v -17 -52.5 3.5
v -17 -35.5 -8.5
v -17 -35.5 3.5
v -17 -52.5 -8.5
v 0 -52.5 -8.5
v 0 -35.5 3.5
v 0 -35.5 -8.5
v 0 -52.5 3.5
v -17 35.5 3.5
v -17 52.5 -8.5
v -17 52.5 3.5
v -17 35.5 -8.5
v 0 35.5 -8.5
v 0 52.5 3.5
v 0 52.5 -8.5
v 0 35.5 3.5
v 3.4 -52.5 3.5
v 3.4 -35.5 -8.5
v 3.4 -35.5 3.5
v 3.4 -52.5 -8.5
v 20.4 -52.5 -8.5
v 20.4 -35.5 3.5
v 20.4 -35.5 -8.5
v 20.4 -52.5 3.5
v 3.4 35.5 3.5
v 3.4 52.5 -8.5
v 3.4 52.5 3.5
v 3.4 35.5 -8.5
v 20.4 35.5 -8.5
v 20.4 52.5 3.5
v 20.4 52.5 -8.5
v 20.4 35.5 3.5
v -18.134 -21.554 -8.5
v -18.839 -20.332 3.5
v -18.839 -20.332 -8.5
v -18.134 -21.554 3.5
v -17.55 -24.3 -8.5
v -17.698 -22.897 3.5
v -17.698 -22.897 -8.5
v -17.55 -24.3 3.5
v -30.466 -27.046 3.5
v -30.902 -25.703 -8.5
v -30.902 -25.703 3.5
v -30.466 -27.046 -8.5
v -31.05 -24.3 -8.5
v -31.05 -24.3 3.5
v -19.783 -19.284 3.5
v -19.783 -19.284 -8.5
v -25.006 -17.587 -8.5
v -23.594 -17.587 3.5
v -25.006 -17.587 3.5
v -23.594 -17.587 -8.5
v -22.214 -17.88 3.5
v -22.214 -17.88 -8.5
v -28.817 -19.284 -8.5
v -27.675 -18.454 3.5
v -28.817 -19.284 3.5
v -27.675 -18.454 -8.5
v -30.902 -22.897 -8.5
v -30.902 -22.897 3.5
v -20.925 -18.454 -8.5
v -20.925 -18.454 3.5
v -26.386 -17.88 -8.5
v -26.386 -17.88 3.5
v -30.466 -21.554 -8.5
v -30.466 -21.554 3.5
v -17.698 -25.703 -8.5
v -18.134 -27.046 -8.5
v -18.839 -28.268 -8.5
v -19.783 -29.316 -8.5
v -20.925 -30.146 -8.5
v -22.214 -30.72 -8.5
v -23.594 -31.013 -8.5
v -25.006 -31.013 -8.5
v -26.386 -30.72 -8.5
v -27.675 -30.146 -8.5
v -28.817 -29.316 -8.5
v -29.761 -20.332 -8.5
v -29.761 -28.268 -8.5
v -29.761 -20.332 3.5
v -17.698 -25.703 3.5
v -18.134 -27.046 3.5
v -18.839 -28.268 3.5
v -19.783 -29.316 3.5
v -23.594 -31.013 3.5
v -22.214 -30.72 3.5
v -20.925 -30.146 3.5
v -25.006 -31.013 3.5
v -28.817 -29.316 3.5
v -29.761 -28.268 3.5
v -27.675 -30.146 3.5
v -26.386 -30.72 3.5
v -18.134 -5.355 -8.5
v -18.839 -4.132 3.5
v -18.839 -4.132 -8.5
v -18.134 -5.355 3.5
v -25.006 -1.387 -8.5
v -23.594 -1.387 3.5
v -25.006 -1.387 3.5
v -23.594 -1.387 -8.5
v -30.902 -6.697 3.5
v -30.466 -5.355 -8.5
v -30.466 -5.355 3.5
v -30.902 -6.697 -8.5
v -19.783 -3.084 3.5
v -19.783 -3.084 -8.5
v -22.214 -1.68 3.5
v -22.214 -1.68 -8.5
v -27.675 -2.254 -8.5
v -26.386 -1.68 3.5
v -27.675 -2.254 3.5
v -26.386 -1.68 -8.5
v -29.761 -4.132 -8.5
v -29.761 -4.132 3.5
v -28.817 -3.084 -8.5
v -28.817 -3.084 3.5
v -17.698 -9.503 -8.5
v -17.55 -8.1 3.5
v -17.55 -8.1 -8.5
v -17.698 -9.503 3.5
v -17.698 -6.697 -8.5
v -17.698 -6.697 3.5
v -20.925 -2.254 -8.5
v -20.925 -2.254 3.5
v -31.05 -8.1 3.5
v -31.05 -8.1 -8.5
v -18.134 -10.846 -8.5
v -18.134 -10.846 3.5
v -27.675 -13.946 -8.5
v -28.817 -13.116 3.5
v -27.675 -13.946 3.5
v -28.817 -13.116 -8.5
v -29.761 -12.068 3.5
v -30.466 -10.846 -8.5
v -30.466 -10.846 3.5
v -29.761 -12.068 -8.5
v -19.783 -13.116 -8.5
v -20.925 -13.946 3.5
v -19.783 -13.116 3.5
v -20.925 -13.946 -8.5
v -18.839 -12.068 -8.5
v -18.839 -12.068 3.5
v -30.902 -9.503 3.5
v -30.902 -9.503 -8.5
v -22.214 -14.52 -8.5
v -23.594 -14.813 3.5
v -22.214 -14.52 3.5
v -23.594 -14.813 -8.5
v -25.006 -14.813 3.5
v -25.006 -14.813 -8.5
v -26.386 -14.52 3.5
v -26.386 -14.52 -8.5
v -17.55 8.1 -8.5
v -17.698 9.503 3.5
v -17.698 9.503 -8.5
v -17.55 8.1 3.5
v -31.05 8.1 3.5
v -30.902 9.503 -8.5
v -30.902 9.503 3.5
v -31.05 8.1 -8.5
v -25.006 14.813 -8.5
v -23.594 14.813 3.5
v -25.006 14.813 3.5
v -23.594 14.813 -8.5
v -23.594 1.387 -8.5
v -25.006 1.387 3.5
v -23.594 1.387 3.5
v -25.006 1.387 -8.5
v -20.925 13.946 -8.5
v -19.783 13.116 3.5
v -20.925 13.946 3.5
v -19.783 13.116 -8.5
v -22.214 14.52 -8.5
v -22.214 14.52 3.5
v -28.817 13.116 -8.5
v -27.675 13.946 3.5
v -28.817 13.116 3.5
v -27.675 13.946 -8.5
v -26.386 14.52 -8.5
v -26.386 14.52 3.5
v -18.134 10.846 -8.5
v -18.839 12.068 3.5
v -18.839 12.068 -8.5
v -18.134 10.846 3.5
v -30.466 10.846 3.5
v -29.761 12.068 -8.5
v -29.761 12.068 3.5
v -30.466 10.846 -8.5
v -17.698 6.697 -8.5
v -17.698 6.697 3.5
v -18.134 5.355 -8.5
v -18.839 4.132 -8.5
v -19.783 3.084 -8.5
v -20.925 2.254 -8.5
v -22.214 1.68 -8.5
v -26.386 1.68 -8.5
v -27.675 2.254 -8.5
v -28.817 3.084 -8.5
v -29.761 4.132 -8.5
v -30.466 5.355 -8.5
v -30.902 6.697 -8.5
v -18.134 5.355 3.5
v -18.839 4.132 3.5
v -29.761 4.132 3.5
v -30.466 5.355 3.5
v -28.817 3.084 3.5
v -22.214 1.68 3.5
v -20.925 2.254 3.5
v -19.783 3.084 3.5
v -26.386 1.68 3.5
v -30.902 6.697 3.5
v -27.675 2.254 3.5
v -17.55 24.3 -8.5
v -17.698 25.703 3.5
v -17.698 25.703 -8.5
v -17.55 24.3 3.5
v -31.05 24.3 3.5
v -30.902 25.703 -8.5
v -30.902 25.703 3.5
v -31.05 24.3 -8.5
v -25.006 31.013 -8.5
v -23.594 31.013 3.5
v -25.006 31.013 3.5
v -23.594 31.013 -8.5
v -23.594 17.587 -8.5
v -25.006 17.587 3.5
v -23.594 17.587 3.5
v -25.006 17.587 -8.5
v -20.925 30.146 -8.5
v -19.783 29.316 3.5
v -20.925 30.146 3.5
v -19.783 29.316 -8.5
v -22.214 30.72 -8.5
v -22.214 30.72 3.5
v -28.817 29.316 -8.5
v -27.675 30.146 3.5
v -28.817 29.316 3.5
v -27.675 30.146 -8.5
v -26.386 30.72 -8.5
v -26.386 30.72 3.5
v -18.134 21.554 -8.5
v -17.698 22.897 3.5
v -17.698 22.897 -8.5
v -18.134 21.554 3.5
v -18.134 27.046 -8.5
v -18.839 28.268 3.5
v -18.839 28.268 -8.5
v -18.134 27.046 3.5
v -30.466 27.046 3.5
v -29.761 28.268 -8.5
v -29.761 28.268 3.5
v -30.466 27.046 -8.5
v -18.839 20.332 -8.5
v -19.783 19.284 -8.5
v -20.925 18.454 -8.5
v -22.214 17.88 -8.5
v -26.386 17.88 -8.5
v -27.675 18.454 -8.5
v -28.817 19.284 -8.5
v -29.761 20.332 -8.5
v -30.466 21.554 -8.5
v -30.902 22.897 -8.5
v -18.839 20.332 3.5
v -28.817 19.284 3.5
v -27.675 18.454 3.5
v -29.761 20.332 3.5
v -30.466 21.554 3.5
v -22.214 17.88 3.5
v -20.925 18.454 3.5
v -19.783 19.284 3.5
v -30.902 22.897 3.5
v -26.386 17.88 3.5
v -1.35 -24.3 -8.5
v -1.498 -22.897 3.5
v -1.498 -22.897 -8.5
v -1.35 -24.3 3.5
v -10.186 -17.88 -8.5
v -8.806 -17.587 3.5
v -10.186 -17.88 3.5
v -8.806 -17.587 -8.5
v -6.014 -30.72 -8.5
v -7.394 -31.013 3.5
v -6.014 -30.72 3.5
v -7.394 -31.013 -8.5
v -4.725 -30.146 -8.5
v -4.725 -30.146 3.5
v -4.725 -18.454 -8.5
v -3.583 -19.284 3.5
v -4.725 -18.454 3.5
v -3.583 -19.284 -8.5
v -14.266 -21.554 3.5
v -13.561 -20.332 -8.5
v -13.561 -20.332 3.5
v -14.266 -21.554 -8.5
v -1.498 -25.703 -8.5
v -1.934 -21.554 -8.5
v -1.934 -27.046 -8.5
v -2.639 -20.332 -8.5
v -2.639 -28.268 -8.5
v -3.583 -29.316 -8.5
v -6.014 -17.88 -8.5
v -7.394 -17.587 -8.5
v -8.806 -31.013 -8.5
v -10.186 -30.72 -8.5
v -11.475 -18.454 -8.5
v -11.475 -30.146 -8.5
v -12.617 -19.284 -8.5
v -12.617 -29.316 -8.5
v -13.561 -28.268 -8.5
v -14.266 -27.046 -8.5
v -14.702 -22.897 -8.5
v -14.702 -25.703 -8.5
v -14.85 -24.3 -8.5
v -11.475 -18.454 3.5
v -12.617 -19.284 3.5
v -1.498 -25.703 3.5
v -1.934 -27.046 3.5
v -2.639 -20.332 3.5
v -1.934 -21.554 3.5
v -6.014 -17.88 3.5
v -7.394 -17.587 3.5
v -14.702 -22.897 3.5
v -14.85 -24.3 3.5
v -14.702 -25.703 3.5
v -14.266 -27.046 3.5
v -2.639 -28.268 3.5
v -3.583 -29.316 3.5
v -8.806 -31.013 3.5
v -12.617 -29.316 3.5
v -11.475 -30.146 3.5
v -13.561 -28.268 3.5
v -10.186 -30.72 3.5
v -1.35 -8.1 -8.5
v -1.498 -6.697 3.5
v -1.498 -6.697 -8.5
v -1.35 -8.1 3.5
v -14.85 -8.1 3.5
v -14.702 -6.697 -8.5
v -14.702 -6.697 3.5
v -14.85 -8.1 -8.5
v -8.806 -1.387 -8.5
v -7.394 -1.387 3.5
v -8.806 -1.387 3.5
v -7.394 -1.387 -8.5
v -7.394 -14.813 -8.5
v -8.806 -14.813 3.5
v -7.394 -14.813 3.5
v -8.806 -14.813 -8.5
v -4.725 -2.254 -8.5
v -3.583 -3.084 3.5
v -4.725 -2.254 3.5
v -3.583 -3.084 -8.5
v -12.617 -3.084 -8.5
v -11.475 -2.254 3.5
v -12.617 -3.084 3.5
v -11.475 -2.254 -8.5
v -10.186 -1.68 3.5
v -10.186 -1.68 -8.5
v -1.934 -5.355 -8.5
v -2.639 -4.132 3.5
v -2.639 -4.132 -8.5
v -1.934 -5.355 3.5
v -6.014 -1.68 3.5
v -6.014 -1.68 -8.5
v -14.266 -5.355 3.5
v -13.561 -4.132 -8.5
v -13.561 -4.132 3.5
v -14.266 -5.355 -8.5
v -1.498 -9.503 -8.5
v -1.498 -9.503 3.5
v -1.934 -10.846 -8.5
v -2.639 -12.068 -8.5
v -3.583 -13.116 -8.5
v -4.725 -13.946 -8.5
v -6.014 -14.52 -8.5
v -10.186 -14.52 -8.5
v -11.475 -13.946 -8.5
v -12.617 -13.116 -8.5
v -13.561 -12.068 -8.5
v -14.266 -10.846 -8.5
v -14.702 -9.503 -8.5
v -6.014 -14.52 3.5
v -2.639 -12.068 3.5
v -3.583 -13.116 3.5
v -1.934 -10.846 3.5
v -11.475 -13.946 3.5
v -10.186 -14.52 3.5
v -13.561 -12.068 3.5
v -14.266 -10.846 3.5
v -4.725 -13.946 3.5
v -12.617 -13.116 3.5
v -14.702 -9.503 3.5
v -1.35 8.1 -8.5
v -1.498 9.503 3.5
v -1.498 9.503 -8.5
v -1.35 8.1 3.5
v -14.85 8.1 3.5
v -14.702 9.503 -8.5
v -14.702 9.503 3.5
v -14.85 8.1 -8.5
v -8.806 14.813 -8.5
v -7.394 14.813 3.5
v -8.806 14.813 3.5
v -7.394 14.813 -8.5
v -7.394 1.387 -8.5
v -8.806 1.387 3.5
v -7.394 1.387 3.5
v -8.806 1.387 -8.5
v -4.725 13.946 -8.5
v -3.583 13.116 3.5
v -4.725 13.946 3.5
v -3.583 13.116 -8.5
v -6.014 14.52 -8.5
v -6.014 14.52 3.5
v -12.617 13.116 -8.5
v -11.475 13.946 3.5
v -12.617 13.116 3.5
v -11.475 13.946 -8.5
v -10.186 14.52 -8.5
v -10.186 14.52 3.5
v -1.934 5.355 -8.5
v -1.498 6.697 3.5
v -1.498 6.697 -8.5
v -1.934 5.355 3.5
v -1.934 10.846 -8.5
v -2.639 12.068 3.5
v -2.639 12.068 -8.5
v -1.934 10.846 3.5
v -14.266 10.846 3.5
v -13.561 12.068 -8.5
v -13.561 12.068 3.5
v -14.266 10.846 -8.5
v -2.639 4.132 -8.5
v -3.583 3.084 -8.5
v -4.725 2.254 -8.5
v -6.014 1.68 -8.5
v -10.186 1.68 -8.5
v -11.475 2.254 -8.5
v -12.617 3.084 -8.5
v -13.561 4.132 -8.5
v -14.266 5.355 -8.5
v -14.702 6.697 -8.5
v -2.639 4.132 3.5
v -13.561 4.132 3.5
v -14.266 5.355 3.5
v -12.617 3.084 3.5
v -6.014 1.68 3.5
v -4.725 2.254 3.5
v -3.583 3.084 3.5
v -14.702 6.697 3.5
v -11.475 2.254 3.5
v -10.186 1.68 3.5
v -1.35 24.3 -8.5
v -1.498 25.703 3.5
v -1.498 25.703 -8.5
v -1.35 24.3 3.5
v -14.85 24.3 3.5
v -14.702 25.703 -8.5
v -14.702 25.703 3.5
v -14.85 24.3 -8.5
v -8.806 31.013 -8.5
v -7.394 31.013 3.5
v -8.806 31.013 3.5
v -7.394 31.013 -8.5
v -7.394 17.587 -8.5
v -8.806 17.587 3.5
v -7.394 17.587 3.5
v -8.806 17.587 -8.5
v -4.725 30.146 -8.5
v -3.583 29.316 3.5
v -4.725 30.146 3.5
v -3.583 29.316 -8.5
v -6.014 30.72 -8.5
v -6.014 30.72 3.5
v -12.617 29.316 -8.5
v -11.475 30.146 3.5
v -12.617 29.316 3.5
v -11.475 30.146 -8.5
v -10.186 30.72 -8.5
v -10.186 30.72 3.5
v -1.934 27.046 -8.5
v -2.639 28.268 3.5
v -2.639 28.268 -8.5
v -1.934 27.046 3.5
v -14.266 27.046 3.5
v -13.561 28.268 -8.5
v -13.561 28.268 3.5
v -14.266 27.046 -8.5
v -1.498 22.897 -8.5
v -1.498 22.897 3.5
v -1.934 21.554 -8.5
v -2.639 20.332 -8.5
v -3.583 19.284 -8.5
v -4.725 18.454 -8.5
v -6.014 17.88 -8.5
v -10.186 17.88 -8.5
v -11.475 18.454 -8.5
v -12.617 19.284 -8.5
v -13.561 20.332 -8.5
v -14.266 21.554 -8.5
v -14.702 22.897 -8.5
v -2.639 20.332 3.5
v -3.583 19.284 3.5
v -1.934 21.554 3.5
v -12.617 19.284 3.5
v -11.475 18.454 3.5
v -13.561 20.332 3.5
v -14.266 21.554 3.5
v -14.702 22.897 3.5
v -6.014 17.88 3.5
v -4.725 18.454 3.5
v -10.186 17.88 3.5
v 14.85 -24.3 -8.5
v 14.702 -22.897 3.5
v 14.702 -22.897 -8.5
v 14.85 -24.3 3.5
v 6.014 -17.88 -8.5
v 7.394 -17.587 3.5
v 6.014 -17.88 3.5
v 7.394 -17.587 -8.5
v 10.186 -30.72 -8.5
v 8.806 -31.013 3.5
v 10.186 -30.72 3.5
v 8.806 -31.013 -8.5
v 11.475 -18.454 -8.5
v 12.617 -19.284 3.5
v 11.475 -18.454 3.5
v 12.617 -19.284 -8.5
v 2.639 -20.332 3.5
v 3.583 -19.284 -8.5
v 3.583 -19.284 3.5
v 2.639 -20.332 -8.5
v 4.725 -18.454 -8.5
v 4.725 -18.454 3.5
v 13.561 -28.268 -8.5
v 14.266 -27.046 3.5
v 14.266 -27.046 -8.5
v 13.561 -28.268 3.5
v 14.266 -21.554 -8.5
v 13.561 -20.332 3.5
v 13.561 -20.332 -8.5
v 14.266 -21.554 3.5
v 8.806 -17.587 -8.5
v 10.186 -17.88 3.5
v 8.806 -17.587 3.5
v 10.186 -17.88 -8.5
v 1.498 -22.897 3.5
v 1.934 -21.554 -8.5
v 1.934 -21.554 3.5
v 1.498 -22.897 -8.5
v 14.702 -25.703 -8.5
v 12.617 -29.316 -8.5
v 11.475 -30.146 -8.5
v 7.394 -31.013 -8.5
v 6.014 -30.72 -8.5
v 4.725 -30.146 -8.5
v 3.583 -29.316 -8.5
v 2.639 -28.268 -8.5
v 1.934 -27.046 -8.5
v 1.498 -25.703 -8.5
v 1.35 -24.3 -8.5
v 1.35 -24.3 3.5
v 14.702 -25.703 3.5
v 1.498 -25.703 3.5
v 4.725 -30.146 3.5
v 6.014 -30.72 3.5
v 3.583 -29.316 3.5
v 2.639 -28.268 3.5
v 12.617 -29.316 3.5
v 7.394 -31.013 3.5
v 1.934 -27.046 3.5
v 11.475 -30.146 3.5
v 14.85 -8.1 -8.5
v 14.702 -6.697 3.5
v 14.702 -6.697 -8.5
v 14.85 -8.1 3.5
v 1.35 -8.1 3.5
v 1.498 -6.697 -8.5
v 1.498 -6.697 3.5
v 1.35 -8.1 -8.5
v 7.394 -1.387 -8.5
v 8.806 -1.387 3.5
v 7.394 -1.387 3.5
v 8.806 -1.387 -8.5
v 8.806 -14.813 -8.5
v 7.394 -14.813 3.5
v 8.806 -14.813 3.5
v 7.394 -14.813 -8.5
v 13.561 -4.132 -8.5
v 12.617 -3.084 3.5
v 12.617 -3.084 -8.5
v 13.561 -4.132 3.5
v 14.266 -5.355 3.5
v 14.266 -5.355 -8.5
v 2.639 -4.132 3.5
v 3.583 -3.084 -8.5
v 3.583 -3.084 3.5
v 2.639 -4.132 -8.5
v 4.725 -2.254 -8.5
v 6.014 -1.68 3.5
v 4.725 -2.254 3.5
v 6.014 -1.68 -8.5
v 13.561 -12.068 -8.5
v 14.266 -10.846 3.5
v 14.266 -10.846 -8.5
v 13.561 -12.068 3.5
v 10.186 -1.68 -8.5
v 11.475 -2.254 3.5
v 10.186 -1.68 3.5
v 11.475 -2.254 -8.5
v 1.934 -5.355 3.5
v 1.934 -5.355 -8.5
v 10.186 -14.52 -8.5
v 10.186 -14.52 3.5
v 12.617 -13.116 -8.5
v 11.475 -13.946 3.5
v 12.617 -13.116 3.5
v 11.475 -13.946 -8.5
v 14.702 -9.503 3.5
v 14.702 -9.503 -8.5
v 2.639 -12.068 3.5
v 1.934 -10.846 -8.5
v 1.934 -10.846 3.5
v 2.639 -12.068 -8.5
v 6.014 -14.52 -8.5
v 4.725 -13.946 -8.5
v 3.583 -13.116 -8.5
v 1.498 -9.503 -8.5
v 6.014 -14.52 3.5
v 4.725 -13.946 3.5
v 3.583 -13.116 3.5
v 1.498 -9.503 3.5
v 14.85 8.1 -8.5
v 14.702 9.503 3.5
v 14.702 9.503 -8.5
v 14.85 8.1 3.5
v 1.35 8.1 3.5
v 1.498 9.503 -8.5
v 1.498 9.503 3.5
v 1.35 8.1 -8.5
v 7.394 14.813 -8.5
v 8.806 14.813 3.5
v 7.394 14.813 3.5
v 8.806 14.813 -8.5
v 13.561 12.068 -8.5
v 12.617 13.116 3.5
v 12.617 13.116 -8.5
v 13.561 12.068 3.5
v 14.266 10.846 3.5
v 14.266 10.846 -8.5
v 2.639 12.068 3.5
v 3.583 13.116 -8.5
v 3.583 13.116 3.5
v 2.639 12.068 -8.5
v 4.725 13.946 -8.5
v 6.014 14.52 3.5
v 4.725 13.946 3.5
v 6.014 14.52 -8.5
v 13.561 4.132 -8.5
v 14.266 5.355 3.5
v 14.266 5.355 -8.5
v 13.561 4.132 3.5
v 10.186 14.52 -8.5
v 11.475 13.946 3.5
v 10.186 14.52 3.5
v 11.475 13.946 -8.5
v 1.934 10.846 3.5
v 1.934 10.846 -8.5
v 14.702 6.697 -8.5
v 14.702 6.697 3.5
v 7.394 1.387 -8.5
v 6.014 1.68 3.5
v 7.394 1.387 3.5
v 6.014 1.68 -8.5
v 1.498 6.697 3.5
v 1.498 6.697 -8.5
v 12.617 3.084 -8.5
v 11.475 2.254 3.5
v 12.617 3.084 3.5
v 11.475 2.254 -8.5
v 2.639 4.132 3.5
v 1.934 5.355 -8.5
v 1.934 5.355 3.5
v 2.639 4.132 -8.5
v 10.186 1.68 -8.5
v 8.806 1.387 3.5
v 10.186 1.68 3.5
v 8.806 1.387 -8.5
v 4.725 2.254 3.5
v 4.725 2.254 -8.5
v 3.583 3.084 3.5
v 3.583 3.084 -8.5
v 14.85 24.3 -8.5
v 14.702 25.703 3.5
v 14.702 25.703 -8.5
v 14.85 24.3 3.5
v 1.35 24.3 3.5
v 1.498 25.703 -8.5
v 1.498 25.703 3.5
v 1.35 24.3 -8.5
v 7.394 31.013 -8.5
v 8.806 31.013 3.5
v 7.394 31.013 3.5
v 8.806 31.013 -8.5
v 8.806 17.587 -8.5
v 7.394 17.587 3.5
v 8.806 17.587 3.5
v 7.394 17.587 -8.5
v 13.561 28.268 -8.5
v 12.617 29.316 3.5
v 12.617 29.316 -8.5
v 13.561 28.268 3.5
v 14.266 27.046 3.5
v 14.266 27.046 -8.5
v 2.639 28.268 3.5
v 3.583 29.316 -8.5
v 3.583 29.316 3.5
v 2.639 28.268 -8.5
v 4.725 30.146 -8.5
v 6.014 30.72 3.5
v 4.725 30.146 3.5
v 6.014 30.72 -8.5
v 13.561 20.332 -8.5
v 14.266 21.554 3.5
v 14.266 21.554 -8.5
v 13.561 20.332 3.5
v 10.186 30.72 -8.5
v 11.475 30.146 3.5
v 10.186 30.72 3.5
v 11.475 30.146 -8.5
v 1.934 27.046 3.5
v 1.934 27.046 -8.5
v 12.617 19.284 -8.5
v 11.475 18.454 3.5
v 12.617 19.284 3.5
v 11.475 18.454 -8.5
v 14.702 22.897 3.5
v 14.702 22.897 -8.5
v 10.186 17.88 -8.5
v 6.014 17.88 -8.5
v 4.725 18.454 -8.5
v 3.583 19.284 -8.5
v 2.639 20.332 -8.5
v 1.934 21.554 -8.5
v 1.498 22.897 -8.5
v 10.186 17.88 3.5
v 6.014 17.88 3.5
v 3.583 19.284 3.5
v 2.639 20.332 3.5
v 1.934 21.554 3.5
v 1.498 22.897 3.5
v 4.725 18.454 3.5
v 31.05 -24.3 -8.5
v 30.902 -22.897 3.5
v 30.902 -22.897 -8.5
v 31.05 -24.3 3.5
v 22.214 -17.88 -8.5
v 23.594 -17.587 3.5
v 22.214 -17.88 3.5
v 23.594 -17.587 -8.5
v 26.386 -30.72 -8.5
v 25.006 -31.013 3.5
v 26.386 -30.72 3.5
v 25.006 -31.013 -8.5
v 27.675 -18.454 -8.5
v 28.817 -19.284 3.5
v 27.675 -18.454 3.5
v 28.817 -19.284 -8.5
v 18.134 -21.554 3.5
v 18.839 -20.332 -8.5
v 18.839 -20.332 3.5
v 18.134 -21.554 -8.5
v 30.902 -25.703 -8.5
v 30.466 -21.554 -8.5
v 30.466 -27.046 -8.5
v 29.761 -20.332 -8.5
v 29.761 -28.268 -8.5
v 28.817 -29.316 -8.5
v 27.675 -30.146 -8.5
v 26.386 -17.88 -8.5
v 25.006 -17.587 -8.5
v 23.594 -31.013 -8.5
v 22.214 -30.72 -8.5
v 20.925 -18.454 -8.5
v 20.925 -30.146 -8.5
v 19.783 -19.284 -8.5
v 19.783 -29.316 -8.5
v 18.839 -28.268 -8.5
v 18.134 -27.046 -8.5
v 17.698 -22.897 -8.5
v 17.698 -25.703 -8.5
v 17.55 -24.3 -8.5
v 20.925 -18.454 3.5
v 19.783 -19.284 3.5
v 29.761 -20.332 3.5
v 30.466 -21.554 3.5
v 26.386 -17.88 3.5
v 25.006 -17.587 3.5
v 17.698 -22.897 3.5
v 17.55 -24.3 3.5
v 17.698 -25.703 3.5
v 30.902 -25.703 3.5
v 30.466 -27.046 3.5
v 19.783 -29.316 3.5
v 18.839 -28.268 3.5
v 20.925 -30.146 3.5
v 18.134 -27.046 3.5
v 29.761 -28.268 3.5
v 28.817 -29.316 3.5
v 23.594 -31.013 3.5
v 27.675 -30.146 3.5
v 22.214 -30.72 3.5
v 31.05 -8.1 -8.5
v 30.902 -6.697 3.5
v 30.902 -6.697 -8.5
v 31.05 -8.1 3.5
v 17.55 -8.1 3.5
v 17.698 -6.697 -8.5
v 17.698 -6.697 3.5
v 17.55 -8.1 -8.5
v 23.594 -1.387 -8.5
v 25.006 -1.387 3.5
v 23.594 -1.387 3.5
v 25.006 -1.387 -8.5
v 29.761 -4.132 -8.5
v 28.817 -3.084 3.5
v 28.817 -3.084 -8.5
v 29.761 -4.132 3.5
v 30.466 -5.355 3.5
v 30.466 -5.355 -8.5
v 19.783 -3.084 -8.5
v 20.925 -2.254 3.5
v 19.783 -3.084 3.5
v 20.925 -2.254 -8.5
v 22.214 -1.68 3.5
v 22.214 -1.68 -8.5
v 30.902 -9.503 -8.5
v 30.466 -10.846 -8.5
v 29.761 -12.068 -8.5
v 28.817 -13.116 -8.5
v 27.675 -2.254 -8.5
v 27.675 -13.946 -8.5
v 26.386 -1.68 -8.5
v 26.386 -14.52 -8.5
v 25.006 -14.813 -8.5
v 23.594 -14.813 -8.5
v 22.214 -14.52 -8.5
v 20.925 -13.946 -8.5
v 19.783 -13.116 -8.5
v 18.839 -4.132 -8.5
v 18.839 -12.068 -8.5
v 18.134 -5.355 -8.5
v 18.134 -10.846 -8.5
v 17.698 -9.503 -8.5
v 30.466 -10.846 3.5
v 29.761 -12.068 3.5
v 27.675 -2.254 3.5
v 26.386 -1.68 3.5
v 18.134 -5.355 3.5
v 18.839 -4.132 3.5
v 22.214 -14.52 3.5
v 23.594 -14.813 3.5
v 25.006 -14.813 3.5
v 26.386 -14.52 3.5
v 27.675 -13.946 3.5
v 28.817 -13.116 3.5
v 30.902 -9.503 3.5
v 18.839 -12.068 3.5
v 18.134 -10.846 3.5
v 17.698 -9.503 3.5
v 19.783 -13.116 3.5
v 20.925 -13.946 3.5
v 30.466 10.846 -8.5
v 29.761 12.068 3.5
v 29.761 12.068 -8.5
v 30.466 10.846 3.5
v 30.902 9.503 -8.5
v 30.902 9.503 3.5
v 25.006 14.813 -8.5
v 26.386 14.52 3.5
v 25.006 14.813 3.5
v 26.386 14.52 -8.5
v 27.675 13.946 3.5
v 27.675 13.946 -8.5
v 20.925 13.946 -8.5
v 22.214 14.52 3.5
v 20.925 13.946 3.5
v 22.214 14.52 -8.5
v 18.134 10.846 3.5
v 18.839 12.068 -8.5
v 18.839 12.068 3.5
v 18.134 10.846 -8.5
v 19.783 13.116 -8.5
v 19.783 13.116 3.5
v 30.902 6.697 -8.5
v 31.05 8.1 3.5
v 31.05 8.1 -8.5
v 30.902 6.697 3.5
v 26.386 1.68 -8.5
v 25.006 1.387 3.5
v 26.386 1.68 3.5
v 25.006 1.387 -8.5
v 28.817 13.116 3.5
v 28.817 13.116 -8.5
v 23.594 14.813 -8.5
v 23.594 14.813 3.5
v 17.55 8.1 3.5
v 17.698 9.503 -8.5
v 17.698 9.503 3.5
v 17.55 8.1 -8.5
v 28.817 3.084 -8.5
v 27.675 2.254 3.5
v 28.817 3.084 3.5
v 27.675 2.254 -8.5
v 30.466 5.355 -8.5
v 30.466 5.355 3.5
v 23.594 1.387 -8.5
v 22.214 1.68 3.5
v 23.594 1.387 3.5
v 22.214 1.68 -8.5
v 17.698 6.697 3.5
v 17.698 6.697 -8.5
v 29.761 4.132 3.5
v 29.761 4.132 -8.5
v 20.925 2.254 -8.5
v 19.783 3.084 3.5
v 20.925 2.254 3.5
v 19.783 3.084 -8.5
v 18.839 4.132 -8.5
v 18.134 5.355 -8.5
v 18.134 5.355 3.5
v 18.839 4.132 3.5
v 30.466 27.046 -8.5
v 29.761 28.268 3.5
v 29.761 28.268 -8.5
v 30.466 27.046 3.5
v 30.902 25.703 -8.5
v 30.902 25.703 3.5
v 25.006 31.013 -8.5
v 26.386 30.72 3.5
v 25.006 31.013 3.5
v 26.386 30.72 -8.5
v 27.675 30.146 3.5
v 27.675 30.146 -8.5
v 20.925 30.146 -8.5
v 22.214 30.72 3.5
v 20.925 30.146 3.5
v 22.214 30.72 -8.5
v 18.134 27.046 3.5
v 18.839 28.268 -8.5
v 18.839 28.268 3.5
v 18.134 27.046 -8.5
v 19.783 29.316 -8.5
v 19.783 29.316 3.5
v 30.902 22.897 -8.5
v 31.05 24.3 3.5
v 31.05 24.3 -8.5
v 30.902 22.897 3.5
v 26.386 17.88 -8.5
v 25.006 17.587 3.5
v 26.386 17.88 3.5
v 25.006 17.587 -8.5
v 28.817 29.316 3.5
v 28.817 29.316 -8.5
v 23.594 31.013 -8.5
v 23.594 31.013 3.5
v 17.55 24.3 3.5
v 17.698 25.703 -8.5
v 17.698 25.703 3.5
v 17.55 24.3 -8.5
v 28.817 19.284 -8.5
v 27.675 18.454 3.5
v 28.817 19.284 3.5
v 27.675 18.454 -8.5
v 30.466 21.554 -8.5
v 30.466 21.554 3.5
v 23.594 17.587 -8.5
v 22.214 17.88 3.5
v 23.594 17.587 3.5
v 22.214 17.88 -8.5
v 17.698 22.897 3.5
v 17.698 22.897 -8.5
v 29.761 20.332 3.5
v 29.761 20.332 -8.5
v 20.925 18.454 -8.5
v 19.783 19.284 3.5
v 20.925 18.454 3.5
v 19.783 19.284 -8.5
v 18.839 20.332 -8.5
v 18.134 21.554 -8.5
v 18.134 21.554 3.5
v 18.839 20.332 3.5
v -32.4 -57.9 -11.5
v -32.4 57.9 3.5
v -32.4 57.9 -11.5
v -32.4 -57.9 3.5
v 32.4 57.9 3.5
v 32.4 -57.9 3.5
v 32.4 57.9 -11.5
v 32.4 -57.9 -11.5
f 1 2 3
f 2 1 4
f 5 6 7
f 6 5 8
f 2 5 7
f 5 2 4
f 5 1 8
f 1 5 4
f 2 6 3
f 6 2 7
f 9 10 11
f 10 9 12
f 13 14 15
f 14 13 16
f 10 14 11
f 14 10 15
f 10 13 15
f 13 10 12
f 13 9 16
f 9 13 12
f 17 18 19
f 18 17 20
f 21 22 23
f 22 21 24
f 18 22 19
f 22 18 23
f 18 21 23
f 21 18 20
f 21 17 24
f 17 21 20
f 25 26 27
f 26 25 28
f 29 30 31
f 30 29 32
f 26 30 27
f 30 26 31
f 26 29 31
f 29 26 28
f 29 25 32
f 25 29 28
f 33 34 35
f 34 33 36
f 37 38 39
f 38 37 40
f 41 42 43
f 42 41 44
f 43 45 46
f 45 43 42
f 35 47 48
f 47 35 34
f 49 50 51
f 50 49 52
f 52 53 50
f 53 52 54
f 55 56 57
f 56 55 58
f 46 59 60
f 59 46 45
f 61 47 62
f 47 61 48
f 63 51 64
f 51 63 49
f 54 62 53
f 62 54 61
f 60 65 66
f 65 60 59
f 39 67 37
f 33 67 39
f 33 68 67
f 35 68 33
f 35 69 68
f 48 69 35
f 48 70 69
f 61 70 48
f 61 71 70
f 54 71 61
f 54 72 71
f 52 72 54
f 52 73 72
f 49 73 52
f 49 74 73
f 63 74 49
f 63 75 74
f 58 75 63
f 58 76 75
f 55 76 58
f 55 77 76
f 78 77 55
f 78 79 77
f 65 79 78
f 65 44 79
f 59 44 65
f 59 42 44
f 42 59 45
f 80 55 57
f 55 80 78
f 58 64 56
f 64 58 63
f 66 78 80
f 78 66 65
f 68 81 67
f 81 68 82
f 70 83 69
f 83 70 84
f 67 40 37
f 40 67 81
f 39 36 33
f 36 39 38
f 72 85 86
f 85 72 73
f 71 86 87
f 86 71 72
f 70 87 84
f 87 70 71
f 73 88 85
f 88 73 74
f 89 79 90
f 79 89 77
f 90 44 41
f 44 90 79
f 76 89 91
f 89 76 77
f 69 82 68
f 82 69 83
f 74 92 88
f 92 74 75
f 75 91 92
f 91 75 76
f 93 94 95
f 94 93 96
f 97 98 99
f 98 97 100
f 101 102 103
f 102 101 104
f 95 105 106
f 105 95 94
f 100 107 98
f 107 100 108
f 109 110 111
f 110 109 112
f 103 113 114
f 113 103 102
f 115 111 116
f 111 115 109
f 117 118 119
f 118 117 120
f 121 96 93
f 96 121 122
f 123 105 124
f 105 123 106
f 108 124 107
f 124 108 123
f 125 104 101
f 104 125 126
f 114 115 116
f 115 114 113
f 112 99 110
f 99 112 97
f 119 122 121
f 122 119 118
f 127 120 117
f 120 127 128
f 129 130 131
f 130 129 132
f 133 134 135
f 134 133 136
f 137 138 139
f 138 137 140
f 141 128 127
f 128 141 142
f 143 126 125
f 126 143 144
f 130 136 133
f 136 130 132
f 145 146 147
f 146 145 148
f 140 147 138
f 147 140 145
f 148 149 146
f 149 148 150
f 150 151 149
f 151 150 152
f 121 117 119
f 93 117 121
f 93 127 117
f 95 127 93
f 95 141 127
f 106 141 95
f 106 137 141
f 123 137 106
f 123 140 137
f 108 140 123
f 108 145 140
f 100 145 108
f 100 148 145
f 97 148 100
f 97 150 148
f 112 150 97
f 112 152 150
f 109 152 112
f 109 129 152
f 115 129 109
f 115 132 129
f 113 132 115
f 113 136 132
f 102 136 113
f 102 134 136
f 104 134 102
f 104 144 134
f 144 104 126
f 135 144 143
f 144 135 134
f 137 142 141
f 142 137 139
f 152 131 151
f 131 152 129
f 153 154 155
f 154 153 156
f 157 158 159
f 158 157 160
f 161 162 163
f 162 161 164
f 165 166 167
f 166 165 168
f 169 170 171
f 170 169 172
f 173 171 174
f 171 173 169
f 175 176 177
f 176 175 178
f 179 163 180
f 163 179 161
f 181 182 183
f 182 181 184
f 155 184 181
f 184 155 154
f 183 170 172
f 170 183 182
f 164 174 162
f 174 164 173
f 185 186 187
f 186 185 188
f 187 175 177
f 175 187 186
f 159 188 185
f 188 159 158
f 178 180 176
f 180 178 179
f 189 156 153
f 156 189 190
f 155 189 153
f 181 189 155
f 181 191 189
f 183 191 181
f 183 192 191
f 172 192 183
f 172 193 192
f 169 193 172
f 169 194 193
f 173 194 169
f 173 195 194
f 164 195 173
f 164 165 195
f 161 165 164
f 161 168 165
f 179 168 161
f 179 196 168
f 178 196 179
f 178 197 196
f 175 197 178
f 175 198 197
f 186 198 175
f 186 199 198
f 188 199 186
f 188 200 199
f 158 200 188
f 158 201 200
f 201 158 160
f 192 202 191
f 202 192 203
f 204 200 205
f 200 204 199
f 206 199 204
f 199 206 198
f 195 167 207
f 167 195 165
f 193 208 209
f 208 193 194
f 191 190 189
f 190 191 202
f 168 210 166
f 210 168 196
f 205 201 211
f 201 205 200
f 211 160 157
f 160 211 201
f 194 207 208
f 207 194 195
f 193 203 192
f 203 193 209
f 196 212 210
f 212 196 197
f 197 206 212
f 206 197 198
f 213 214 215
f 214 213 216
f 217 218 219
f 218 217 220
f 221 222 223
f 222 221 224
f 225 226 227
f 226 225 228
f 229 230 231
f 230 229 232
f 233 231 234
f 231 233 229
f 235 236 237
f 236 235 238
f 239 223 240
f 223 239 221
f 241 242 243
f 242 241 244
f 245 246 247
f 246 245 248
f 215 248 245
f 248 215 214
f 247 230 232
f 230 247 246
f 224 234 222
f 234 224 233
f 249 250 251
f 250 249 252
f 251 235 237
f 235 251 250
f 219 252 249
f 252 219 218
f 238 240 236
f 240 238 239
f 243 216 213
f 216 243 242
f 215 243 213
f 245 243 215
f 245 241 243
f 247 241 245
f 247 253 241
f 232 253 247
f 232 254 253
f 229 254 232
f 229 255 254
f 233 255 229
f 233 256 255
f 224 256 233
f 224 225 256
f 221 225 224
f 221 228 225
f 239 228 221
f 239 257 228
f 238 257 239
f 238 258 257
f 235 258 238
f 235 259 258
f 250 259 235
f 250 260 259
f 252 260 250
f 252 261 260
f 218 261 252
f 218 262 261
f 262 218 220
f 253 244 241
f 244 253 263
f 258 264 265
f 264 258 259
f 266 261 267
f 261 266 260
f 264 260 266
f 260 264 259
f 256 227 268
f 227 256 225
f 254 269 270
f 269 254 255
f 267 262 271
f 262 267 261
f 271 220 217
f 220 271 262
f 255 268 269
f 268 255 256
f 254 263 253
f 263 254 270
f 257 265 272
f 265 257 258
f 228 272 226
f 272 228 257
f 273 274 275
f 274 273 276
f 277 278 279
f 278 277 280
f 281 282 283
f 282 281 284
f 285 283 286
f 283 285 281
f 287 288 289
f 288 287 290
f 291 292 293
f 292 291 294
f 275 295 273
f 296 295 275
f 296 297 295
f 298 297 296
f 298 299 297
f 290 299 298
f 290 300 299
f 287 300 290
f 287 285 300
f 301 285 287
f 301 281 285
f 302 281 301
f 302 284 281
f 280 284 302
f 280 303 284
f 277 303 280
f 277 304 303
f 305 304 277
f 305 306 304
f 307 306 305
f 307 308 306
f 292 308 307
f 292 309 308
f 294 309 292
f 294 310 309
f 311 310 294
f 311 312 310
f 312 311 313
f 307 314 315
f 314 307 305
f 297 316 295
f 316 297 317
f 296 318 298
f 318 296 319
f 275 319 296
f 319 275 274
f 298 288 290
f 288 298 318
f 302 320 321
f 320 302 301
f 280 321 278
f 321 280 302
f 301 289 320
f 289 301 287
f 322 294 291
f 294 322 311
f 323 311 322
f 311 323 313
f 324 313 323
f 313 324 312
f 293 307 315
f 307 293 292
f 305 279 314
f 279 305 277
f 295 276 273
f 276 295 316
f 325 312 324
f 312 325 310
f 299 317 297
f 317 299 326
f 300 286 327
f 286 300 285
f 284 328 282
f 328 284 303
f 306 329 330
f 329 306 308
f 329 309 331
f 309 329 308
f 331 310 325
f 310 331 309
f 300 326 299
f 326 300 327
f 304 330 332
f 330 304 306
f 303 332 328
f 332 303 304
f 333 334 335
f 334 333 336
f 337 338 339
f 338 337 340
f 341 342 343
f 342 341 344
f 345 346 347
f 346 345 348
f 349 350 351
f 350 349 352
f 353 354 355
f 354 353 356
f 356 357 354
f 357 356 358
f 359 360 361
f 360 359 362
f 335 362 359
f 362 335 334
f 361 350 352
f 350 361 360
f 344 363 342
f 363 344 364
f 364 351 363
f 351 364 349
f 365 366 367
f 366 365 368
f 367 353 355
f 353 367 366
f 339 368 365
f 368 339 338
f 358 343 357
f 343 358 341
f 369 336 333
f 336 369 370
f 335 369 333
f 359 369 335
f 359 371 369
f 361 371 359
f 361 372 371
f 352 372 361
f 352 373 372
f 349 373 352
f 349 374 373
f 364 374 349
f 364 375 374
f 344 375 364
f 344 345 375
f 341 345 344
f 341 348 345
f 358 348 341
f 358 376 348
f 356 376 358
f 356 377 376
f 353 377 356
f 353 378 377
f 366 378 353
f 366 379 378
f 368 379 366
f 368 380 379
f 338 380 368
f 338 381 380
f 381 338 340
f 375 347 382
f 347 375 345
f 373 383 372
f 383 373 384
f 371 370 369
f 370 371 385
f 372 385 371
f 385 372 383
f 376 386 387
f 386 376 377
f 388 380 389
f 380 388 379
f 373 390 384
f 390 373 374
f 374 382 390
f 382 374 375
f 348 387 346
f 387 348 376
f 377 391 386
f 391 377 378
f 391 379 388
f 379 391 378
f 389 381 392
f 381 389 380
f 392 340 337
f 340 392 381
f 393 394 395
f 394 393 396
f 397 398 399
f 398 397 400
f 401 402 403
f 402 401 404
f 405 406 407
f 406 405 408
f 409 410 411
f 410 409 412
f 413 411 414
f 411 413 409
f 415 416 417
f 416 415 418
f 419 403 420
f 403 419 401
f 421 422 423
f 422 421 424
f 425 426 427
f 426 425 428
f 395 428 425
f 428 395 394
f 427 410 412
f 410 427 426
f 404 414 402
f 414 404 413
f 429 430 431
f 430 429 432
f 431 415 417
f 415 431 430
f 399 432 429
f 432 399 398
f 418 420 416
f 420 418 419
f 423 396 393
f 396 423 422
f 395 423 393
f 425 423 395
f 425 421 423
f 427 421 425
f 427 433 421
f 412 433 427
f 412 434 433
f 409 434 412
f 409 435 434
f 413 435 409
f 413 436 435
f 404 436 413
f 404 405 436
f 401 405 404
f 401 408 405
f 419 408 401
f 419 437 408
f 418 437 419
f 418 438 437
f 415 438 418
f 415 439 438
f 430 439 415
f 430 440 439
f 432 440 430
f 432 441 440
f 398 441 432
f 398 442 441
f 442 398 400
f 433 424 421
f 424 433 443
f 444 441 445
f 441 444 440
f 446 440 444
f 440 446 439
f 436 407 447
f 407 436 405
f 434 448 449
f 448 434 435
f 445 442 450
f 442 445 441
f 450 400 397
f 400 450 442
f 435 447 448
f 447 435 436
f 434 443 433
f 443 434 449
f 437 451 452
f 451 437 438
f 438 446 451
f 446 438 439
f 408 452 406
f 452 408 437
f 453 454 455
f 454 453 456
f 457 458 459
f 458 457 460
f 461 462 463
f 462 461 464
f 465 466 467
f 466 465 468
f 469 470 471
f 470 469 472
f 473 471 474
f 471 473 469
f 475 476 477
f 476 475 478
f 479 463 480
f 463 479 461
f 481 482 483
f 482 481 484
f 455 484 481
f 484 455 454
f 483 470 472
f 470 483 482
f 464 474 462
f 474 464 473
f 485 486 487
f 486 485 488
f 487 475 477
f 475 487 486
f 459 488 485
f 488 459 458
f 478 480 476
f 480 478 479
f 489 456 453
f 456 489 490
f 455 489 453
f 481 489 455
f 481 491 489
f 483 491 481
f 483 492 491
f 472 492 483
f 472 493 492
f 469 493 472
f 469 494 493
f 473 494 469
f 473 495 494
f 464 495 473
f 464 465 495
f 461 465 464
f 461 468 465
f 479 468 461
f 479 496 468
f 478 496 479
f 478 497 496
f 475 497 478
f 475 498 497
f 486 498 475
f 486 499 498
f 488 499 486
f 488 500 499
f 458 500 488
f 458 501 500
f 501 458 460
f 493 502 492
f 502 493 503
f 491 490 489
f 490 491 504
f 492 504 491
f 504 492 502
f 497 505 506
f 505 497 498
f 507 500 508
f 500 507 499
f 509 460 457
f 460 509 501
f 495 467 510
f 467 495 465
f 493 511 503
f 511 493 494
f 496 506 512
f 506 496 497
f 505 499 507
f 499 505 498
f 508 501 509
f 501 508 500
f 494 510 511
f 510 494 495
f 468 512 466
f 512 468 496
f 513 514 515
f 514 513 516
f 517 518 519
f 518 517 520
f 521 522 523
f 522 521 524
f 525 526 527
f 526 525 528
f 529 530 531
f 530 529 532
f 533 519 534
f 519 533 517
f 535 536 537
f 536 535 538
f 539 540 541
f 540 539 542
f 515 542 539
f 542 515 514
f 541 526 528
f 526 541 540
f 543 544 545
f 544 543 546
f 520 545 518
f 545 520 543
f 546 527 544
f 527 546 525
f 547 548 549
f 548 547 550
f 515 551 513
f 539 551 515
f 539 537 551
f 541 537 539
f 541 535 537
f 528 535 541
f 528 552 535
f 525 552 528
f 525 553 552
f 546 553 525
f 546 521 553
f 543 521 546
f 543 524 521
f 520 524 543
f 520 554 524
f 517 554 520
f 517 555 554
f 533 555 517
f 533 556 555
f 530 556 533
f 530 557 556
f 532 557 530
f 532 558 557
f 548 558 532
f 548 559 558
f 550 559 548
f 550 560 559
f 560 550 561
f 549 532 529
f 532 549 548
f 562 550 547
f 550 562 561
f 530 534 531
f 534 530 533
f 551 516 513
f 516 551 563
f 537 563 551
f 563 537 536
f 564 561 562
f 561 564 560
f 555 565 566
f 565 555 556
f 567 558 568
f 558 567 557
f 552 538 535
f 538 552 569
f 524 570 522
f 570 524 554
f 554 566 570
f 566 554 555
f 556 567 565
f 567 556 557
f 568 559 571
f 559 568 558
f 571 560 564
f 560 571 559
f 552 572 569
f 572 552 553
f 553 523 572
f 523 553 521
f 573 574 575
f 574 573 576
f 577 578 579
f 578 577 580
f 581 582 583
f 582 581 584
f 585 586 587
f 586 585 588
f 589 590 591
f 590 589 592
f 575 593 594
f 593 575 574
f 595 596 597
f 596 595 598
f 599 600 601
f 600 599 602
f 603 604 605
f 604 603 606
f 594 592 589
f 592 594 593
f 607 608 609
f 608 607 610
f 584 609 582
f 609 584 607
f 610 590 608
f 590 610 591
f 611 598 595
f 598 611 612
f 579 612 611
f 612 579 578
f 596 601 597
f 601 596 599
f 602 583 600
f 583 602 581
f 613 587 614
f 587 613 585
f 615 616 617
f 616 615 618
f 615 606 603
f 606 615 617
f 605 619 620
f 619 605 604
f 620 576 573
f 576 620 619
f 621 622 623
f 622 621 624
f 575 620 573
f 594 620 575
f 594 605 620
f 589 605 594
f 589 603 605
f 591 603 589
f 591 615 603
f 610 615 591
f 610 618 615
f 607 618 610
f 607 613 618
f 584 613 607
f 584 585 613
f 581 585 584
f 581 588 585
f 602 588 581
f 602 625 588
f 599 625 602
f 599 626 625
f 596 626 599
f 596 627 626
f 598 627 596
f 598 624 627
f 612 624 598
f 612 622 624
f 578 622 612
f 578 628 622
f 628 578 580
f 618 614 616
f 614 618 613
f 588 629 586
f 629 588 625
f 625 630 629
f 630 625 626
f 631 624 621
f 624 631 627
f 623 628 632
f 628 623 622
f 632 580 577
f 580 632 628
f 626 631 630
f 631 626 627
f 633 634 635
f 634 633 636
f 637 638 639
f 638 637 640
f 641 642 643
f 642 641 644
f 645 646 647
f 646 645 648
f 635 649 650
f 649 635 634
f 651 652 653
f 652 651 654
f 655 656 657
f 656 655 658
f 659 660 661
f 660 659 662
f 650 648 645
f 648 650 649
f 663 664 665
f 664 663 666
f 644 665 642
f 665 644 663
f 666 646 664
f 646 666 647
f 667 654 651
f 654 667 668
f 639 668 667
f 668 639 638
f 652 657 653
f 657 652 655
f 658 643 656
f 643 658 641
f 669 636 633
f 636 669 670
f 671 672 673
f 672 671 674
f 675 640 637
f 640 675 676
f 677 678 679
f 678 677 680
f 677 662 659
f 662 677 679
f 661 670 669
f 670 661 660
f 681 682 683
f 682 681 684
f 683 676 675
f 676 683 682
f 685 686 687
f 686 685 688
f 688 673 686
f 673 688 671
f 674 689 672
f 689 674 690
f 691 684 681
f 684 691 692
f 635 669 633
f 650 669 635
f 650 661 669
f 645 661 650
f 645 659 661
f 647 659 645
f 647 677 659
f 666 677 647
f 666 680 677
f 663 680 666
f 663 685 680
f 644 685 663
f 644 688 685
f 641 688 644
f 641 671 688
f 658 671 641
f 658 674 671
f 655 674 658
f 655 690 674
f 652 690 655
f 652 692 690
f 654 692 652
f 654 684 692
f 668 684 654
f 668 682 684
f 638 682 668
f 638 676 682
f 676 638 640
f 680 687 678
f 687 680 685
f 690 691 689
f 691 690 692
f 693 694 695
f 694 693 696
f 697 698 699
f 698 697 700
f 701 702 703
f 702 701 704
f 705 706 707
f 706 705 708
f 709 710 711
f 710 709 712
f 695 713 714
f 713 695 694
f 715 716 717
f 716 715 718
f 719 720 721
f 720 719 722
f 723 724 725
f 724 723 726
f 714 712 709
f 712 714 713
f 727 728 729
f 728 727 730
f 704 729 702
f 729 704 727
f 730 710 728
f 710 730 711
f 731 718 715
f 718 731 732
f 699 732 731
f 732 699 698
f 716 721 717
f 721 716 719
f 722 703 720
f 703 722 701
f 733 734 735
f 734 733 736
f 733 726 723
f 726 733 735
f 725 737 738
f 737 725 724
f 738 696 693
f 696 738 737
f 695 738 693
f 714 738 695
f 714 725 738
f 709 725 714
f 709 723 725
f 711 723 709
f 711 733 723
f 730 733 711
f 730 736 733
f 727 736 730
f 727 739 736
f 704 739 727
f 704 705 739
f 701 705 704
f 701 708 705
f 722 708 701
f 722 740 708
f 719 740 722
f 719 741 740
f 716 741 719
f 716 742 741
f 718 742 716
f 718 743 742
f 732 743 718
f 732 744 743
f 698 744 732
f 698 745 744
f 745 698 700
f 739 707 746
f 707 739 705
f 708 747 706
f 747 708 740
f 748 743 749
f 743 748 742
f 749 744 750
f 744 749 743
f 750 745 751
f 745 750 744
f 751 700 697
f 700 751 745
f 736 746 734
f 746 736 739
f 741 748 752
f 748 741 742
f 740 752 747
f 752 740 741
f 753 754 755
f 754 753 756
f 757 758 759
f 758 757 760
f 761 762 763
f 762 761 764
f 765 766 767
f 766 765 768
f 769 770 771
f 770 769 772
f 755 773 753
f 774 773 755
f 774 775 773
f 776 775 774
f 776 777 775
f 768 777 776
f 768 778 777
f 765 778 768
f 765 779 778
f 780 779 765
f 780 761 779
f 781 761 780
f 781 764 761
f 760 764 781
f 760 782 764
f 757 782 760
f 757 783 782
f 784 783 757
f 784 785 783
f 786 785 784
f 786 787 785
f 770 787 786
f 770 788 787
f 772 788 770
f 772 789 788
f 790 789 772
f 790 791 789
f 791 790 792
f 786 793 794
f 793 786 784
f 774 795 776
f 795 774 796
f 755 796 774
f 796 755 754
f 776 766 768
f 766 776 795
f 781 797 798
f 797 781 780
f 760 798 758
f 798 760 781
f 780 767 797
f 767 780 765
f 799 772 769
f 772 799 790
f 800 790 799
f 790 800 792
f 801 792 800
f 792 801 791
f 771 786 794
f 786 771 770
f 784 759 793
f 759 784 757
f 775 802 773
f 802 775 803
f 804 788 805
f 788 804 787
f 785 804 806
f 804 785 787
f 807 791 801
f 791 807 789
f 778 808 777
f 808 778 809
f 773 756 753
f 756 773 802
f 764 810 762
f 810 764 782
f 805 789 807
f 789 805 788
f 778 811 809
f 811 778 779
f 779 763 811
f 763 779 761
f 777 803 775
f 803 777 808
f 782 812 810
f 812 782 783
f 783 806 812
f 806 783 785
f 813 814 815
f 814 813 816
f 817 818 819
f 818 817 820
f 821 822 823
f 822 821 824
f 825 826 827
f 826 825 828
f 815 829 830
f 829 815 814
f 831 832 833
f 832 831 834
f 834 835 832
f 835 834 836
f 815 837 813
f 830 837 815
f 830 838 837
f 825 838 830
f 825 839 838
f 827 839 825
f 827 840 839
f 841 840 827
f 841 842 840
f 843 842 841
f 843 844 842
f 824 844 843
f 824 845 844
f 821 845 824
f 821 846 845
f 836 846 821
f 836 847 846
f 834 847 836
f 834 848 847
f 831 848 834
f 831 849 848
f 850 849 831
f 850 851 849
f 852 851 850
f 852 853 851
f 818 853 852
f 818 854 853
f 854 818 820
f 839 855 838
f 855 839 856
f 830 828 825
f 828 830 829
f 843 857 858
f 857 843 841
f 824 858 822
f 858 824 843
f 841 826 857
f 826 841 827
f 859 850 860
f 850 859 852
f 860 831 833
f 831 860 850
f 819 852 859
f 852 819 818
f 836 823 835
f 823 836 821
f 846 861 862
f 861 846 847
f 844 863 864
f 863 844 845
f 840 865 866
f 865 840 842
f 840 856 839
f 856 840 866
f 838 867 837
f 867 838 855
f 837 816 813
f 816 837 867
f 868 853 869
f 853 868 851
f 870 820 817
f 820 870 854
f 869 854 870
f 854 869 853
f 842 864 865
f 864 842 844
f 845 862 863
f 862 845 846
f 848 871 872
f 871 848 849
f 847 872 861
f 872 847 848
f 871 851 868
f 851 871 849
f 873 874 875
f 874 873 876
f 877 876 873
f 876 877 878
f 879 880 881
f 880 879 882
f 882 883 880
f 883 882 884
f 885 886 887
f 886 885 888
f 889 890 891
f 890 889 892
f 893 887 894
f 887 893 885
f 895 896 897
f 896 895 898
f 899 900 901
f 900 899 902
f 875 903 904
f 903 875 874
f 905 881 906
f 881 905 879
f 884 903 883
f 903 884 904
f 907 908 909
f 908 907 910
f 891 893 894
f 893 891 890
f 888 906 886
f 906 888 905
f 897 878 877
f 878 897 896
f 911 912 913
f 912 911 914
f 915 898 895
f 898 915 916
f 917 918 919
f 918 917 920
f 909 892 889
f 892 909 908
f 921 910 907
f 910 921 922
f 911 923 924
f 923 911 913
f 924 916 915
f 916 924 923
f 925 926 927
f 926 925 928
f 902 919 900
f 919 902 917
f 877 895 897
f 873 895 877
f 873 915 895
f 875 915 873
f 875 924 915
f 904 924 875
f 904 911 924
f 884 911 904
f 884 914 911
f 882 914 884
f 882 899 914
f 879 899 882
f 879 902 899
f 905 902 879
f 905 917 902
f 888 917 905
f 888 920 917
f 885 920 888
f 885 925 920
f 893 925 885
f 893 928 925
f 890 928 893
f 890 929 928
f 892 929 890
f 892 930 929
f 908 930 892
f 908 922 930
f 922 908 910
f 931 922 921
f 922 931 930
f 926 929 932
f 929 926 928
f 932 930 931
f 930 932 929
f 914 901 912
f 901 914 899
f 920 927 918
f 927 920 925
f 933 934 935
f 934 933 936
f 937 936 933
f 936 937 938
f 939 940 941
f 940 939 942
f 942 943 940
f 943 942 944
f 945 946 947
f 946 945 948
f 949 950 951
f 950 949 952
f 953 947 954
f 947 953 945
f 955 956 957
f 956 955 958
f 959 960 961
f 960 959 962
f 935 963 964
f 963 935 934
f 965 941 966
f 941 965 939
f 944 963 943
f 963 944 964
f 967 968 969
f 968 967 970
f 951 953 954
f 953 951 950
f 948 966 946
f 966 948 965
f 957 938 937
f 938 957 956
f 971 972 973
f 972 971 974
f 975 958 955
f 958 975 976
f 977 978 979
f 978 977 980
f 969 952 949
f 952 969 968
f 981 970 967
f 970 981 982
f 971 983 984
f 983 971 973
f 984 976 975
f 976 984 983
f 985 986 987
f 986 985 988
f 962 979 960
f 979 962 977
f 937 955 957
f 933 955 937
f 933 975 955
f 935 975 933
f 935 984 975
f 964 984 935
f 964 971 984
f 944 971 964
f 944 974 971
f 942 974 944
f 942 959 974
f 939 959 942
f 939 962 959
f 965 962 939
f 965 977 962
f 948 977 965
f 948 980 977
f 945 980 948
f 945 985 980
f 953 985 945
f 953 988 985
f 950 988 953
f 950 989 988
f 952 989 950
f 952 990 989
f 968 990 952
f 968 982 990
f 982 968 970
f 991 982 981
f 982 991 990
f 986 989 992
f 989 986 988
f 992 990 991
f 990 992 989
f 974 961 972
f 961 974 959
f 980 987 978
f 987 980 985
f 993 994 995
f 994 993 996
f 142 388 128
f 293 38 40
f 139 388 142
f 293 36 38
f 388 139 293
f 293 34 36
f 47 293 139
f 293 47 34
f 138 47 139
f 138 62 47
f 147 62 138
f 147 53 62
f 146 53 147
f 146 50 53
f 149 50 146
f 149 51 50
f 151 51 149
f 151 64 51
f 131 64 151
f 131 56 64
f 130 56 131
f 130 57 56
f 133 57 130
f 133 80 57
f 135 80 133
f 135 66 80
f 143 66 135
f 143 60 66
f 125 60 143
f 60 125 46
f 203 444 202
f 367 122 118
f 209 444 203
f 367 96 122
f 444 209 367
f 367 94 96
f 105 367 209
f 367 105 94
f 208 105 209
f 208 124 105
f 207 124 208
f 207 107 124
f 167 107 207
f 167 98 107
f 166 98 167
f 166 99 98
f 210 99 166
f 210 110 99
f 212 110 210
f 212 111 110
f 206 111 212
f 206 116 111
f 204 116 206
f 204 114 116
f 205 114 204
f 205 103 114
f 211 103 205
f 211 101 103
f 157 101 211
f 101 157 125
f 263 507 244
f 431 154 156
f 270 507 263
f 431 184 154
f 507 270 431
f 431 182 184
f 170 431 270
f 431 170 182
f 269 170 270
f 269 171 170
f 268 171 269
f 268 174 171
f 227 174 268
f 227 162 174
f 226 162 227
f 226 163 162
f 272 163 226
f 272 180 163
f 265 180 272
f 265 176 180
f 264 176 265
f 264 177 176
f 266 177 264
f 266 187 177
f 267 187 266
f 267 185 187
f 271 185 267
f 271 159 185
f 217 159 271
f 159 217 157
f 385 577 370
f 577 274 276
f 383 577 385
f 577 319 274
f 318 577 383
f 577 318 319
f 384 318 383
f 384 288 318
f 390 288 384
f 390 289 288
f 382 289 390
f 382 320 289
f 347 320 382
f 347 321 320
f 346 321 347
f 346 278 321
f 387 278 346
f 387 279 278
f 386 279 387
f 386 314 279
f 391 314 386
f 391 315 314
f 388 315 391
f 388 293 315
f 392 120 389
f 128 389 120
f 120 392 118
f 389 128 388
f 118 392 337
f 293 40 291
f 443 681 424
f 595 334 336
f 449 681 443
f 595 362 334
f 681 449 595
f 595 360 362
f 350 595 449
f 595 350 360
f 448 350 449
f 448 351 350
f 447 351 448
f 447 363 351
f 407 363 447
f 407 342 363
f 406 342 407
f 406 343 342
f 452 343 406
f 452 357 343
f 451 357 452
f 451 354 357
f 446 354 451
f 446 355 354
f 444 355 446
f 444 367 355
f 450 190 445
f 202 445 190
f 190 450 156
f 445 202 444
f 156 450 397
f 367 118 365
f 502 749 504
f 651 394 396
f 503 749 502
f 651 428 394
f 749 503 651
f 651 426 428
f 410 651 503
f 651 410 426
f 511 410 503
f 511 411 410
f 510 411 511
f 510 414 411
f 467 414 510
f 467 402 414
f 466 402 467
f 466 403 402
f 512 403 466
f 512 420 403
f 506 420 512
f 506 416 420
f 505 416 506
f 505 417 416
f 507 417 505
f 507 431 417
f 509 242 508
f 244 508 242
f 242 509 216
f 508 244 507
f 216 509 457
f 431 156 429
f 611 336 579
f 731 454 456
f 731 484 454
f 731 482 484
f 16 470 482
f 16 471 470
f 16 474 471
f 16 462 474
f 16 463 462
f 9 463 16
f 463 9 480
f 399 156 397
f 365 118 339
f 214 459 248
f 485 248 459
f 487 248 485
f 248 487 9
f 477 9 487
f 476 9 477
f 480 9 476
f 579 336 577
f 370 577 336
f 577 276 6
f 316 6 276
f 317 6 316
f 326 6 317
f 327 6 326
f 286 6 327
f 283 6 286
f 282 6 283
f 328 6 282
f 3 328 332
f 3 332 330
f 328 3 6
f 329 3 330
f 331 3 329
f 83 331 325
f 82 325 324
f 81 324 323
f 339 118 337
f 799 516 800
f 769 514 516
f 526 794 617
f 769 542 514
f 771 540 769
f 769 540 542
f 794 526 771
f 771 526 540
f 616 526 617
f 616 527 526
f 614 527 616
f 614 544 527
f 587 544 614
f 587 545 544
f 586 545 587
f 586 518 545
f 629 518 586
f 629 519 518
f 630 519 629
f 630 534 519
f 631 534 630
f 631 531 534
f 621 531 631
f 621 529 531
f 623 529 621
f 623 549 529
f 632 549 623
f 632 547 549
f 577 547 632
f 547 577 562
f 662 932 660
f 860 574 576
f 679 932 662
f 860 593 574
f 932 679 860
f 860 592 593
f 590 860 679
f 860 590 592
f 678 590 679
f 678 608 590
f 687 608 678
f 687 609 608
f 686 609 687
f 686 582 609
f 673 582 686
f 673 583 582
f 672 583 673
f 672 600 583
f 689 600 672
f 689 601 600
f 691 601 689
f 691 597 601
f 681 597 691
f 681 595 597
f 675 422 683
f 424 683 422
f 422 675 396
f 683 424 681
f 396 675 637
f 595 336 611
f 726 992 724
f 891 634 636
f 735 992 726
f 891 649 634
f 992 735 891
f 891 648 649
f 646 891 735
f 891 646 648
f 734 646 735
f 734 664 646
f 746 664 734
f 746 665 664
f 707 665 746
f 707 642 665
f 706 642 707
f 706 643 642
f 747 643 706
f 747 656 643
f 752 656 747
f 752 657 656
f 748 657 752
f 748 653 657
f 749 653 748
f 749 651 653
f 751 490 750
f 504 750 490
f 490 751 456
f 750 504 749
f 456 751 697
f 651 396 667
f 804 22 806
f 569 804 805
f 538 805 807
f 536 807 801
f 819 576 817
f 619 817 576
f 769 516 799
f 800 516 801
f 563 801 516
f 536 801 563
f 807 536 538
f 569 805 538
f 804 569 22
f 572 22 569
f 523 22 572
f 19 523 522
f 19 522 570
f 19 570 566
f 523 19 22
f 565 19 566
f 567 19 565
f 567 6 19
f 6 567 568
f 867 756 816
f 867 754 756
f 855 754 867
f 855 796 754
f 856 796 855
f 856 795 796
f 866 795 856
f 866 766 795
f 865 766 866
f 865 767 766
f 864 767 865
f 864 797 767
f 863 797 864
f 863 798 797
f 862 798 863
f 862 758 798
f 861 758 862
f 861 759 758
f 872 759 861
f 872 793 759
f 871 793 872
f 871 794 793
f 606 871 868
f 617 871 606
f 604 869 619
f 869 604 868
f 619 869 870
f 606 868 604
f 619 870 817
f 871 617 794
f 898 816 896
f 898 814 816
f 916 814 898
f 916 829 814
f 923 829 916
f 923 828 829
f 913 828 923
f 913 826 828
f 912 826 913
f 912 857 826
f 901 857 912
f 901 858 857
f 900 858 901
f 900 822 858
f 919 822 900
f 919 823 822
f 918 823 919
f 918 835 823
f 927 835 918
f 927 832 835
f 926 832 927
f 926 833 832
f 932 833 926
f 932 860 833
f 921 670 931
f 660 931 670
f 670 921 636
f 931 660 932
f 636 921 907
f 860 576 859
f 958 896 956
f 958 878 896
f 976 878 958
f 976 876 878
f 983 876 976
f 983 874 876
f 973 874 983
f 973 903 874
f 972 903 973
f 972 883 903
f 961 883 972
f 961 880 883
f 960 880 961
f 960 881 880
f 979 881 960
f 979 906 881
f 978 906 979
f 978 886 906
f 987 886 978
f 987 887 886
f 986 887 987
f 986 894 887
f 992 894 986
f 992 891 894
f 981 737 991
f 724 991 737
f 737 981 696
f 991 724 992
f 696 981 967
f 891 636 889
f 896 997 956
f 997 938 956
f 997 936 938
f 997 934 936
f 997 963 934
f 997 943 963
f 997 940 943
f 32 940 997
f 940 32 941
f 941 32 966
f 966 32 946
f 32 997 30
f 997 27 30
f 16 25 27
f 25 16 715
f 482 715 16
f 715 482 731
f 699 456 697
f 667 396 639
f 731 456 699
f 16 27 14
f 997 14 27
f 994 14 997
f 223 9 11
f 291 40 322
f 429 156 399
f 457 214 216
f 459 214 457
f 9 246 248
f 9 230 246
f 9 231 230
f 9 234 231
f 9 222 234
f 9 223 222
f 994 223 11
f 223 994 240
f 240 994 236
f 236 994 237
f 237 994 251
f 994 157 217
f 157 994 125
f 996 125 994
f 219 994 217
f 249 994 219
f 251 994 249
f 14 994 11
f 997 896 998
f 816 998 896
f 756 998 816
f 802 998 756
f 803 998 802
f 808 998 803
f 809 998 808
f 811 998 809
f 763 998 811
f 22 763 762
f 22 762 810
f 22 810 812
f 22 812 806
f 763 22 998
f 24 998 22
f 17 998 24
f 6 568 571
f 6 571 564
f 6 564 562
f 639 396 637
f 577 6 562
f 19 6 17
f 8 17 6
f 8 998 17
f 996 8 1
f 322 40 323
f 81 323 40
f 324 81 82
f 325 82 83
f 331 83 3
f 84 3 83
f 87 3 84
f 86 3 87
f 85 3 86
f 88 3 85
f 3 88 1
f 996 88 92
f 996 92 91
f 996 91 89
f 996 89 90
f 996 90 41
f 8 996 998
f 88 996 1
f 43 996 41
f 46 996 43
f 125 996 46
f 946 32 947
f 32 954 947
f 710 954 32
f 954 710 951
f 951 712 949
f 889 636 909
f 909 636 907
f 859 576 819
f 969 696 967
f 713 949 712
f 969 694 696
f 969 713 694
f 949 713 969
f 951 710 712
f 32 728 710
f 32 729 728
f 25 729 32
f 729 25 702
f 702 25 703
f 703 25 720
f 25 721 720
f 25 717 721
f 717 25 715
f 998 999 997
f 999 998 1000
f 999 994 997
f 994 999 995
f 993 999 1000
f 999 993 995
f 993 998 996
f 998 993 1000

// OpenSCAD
//Halter für Spielfiguren und Würfel

$fs=0.1;

diameter = 13.5;
height = 17;
cubewidth = 17;
scalefactor = 1.2;

difference(){
    translate([0,0,-4]) cube([4 * scalefactor * diameter,4 * scalefactor * diameter + 3 * cubewidth, 15], center=true);
    for (x = [-1:2]){
        for (y = [-1:2]){
            translate([x * scalefactor * diameter - scalefactor * 0.5 * diameter, y * scalefactor * diameter - scalefactor * 0.5 * diameter, 0])
            # cylinder(d=diameter,h=height, center=true);
            }
        }
    for (x = [0:1]){
        for (y = [-1,1]){
        translate([x * scalefactor * cubewidth - 0.5 * cubewidth, (2 * diameter + cubewidth) * y, 0])
        # cube(cubewidth, center=true);
        }
    }
}
